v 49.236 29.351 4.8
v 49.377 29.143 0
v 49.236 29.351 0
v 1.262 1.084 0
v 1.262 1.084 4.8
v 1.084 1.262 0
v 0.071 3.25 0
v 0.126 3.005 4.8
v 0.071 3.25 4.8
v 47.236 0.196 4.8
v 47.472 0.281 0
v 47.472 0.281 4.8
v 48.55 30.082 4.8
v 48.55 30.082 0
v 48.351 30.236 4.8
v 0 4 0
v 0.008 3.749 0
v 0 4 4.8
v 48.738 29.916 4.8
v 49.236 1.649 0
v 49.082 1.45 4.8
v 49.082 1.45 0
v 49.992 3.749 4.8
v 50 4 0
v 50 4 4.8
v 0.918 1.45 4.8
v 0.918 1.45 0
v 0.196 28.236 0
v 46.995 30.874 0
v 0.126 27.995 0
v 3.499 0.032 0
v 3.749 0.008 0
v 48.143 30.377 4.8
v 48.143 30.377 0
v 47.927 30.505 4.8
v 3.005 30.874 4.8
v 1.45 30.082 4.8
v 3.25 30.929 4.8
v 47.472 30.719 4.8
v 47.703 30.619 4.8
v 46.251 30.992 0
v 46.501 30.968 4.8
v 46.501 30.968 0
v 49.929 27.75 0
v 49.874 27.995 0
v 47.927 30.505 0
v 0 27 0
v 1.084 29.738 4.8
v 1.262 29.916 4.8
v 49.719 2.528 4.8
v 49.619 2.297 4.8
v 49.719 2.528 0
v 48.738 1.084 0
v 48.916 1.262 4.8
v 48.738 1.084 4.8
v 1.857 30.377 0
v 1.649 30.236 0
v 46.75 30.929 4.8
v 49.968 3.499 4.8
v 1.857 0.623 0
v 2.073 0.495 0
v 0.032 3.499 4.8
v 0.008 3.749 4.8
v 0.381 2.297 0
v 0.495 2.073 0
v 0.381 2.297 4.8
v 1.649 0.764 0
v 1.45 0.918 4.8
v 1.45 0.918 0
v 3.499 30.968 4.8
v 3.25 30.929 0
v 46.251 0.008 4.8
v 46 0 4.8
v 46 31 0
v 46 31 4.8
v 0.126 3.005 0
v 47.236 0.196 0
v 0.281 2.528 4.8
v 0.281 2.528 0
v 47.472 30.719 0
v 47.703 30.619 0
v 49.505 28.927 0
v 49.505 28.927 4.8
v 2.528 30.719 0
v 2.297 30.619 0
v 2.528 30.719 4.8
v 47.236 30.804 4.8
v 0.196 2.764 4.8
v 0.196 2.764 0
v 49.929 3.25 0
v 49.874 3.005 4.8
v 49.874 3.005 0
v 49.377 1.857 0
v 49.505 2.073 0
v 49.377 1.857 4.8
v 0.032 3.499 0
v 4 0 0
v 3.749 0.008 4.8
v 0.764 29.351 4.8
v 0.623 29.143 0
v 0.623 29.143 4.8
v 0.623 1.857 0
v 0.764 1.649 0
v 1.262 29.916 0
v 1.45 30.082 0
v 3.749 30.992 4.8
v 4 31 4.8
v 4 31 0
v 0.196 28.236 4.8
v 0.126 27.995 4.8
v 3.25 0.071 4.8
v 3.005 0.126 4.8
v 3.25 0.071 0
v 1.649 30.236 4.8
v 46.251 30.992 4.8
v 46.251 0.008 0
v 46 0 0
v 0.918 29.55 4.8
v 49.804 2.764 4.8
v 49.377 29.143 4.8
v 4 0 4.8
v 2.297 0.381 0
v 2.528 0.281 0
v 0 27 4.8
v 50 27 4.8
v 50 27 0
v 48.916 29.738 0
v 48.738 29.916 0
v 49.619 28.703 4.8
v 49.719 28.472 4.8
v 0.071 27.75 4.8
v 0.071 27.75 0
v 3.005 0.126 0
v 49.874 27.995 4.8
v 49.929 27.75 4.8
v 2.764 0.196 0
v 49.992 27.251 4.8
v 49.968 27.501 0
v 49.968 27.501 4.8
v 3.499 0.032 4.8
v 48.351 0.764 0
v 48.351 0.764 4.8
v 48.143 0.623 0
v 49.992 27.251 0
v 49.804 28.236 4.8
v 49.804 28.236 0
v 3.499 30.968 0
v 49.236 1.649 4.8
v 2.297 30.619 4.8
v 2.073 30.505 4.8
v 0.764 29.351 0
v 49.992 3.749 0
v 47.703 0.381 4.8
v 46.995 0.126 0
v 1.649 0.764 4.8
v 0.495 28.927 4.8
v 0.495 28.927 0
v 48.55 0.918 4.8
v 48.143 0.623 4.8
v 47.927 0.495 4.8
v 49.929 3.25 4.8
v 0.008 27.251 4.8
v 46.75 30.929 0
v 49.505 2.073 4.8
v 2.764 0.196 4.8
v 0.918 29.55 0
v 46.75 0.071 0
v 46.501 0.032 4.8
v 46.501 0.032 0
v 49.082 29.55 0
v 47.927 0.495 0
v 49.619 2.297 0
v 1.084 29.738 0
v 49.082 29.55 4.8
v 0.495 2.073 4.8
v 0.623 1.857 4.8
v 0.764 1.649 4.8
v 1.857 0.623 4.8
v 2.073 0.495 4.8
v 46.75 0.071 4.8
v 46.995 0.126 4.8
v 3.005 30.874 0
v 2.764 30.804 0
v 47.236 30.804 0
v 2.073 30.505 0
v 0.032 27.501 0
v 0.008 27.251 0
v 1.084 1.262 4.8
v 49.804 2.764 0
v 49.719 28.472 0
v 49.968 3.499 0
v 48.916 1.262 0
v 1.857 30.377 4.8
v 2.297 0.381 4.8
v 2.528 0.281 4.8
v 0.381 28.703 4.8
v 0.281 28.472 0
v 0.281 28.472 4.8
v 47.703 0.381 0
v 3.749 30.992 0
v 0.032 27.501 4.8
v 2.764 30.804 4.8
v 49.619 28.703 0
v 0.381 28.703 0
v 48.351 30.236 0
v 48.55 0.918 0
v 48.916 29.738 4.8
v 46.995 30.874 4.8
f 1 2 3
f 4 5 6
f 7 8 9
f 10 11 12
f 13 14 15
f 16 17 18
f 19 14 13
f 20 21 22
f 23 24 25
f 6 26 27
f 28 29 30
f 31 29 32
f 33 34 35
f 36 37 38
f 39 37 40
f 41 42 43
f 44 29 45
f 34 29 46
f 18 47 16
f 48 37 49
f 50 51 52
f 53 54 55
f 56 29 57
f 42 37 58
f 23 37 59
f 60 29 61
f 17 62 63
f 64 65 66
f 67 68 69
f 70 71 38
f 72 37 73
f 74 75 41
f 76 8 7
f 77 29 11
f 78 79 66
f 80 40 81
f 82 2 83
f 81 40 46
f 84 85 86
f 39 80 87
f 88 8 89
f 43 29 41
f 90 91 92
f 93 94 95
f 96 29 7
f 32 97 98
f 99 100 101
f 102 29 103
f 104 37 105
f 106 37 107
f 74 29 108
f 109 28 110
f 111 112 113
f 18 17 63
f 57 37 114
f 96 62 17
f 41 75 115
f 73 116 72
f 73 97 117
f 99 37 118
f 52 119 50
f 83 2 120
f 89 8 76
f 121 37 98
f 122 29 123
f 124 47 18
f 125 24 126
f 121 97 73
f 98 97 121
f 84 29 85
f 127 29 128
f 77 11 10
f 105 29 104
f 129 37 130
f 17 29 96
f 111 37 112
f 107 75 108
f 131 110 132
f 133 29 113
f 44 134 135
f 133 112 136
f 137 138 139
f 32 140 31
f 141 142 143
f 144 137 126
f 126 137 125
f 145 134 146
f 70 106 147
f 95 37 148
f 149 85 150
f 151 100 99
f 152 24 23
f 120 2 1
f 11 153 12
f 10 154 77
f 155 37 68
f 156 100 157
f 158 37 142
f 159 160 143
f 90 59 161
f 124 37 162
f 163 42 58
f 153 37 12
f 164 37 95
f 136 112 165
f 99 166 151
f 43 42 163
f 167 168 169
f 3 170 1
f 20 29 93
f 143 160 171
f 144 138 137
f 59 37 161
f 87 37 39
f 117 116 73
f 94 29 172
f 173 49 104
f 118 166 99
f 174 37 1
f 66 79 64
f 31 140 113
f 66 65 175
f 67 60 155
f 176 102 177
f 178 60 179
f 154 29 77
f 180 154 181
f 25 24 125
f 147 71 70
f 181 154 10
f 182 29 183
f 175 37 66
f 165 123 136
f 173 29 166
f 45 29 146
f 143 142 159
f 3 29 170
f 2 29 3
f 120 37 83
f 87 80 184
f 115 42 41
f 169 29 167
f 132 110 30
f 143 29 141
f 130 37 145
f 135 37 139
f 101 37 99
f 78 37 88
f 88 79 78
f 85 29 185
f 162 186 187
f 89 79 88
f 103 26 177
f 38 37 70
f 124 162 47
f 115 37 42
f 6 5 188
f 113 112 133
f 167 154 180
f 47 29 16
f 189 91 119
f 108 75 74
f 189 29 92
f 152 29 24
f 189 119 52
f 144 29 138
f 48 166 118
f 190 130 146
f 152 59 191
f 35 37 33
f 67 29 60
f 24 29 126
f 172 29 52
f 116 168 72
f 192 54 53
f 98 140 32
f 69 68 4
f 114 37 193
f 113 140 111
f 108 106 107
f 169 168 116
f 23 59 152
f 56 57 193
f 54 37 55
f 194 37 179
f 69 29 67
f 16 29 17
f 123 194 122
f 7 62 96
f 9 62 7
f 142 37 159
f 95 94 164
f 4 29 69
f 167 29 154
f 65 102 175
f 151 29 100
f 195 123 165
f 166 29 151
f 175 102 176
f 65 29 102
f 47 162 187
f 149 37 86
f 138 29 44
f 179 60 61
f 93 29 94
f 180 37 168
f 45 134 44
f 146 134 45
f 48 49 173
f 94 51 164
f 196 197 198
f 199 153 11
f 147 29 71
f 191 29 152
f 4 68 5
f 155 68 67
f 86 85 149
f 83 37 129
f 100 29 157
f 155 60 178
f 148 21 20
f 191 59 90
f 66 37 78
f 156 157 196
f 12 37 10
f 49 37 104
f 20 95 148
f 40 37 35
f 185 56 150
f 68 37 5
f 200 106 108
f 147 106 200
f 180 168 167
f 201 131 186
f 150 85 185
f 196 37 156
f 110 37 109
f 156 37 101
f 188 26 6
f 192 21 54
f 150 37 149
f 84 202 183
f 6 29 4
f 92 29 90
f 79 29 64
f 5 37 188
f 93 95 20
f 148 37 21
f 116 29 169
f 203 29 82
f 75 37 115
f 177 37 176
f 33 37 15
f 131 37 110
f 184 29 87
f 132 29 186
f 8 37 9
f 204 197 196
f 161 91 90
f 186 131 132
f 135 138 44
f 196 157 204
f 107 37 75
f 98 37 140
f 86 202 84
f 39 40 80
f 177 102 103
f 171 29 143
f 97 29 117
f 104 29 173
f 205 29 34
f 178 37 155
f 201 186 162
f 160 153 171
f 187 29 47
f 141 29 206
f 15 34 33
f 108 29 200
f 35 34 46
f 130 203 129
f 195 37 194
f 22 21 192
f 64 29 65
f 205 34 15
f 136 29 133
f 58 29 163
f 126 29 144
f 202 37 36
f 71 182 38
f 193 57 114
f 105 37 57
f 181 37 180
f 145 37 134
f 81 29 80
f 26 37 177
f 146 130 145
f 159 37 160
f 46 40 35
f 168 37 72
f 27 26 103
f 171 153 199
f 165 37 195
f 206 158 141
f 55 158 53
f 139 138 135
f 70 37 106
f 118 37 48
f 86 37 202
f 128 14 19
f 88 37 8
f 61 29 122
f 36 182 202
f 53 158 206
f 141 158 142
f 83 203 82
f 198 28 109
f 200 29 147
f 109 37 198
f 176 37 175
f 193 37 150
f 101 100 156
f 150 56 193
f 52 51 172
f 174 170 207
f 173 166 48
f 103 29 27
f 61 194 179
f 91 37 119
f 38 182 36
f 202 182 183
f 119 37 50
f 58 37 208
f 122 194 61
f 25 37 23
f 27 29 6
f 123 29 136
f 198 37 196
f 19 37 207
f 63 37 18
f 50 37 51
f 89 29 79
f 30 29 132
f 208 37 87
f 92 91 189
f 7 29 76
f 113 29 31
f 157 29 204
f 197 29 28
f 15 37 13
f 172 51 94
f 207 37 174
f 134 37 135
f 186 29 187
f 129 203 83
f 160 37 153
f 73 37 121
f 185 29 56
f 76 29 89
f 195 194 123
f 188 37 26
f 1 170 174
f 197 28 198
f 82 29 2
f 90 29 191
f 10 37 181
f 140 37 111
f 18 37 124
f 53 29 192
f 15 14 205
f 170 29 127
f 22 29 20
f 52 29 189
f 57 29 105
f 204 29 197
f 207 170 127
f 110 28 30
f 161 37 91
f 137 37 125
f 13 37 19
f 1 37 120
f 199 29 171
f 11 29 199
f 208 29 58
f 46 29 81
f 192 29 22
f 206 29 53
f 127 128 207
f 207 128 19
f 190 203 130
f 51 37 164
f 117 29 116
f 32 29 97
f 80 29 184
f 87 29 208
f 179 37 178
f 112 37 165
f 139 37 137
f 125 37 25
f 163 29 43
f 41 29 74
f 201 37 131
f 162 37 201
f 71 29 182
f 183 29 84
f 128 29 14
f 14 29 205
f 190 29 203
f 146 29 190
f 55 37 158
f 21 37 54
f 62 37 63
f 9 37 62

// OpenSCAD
// file: ../configurations/global.scad
// gold_number = 1.618;

housing_facades_throws_diameter = 3.8;

// external size
case_external_x_size = 165;
case_external_y_size = 92;
case_external_z_size = 38;
case_external_panes_thickness = 4.8;

facade_front_round_edges_radius = 5;
facade_throws_margin = 5;

// facade corners
facade_corners_offset_lenght = 9;
facade_corners_main_x_size = 19;
facade_corners_main_y_size = 19;
facade_corners_main_thickness = 11;
facade_corners_correction_offset_length = 0.2;
facade_corners_correction_offset_thickness = 0.0;
facade_fn = 100;


// Generics
insert_throw_diameter = 4.2;
insert_throw_length = 6 + 2;


// mother board
mother_board_cny70set_x_point_coord = 10;
mother_board_cny70set_y_point_coord = 7;



// Cassette
cassette_x_size = 50;
cassette_y_size = 31;
cassette_z_size = 4.8;
cassette_round_radius = 4;

// Cassette case
cassette_case_x_size = 76.2;
cassette_case_y_size = 55.88;
cassette_case_z_size = 9;
cassette_case_round_radius = 1;

cassette_case_x_y_margin = 0.75;

cassette_case_embed_x_size = 62;
cassette_case_embed_y_size = 42;
cassette_case_embed_z_size = 4.8;
cassette_case_embed_offsets = 10;
cassette_case_embed_round_radius = 6;

cassette_case_throws_margin = 2.54 * 2;
cassette_case_throws_diameter = 3.5;
cassette_case_grip_enveloppe_diameter = 15;
cassette_case_grip_enveloppe_offset = 3;

cassette_case_cny70set_x_point_coord = mother_board_cny70set_x_point_coord;
cassette_case_cny70set_y_point_coord = mother_board_cny70set_y_point_coord;
cassette_case_cny70set_x_y_margin = 0.5;

// Front panel throw cassette case mounting 
cassette_case_embed_throw_margin = 0.5;


// Mother board joins
bolt_join_mother_board_internal_diameter = 3.5;
bolt_join_mother_board_external_diameter = 3.5 + (0.4 * 12);
bolt_join_mother_board_height = 8.5;
bolt_join_fn = 200;


// speaker facade
speaker_facade_x_size = 50;
speaker_facade_y_size = cassette_case_y_size - cassette_case_throws_margin * 2 + 7;
speaker_facade_z_size = 2;
speaker_facade_rounded_radius = 3;
speaker_facade_fixation_throws_margin = 3.5;
speaker_facade_fixation_throws_diameter = 3.5;
speaker_facade_throw_diameter = 40+1;
// 
facade_top_on_off_button_throw_diameter = 12.8;


facade_cassette_case_coords = [
    60 + 5,
    23,
];

facade_speaker_40mm_coords = [
    32 + 5,
    facade_cassette_case_coords[1] + (cassette_case_y_size / 2),
];

batteries_holder_coords = [
    8 + 5,
    20
];

volume_buttons_spacing = 20;
//volume_buttons_coords = [145,50];
volume_buttons_coords = [
    145 + 5 ,
    facade_cassette_case_coords[1] + (cassette_case_y_size / 2),
];

controller_buttons_spacing = 20;
//controller_buttons_coords = [98,14];
controller_buttons_coords = [
    facade_cassette_case_coords[0] + (cassette_case_x_size / 2),
    14
];

controller_onoff_coords = [
    32 + 5,
    14
];
// file: ../libraries/commons.scad
/**
 * forEachCoord
 * Wrapper to apply child on each element
 */
module forEachCoord(coords_list) {
    for (coords = coords_list)
        translate(
            [
                coords[0] == undef ? 0 : coords[0],
                coords[1] == undef ? 0 : coords[1],
                coords[2] == undef ? 0 : coords[2],
            ]
        )
            children();
}
// main file
use <../libraries/commons.scad>
include <../configurations/global.scad>

module cassetteCncPiece(
    x_size = cassette_x_size,
    y_size = cassette_y_size,
    z_size = cassette_z_size,
    round_radius = cassette_round_radius,
) {

    echo(str("cassetteCncPiece ", "x_size: ", x_size, " y_size: ", y_size, " z_size: ", z_size));

    hull()
        forEachCoord([
            [0 + round_radius, 0 + round_radius],
            [0 + round_radius, y_size - round_radius],
            [x_size - round_radius, 0 + round_radius],
            [x_size - round_radius, y_size - round_radius]
        ])
            cylinder(r=round_radius, h=z_size, $fn=100);

}


cassetteCncPiece();
